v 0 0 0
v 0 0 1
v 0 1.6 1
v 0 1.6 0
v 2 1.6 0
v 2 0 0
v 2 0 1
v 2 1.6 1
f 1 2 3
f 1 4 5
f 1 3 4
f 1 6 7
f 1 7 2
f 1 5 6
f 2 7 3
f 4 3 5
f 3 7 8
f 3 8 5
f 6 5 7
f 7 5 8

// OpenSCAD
/* Warning, this is a very basic generator with a lot of approximation 
input data : [VFLGA, ASA, 2.0x1.6mm, 4, , D, C04-01200D]
generated by com.zoubworld.electronics.cad.model3d.Basic
Date : Sun Feb 15 10:50:49 CET 2026
*/

//body
color("black")
translate([0,0,0])
cube([2.0,1.6,1.0], center=false);
